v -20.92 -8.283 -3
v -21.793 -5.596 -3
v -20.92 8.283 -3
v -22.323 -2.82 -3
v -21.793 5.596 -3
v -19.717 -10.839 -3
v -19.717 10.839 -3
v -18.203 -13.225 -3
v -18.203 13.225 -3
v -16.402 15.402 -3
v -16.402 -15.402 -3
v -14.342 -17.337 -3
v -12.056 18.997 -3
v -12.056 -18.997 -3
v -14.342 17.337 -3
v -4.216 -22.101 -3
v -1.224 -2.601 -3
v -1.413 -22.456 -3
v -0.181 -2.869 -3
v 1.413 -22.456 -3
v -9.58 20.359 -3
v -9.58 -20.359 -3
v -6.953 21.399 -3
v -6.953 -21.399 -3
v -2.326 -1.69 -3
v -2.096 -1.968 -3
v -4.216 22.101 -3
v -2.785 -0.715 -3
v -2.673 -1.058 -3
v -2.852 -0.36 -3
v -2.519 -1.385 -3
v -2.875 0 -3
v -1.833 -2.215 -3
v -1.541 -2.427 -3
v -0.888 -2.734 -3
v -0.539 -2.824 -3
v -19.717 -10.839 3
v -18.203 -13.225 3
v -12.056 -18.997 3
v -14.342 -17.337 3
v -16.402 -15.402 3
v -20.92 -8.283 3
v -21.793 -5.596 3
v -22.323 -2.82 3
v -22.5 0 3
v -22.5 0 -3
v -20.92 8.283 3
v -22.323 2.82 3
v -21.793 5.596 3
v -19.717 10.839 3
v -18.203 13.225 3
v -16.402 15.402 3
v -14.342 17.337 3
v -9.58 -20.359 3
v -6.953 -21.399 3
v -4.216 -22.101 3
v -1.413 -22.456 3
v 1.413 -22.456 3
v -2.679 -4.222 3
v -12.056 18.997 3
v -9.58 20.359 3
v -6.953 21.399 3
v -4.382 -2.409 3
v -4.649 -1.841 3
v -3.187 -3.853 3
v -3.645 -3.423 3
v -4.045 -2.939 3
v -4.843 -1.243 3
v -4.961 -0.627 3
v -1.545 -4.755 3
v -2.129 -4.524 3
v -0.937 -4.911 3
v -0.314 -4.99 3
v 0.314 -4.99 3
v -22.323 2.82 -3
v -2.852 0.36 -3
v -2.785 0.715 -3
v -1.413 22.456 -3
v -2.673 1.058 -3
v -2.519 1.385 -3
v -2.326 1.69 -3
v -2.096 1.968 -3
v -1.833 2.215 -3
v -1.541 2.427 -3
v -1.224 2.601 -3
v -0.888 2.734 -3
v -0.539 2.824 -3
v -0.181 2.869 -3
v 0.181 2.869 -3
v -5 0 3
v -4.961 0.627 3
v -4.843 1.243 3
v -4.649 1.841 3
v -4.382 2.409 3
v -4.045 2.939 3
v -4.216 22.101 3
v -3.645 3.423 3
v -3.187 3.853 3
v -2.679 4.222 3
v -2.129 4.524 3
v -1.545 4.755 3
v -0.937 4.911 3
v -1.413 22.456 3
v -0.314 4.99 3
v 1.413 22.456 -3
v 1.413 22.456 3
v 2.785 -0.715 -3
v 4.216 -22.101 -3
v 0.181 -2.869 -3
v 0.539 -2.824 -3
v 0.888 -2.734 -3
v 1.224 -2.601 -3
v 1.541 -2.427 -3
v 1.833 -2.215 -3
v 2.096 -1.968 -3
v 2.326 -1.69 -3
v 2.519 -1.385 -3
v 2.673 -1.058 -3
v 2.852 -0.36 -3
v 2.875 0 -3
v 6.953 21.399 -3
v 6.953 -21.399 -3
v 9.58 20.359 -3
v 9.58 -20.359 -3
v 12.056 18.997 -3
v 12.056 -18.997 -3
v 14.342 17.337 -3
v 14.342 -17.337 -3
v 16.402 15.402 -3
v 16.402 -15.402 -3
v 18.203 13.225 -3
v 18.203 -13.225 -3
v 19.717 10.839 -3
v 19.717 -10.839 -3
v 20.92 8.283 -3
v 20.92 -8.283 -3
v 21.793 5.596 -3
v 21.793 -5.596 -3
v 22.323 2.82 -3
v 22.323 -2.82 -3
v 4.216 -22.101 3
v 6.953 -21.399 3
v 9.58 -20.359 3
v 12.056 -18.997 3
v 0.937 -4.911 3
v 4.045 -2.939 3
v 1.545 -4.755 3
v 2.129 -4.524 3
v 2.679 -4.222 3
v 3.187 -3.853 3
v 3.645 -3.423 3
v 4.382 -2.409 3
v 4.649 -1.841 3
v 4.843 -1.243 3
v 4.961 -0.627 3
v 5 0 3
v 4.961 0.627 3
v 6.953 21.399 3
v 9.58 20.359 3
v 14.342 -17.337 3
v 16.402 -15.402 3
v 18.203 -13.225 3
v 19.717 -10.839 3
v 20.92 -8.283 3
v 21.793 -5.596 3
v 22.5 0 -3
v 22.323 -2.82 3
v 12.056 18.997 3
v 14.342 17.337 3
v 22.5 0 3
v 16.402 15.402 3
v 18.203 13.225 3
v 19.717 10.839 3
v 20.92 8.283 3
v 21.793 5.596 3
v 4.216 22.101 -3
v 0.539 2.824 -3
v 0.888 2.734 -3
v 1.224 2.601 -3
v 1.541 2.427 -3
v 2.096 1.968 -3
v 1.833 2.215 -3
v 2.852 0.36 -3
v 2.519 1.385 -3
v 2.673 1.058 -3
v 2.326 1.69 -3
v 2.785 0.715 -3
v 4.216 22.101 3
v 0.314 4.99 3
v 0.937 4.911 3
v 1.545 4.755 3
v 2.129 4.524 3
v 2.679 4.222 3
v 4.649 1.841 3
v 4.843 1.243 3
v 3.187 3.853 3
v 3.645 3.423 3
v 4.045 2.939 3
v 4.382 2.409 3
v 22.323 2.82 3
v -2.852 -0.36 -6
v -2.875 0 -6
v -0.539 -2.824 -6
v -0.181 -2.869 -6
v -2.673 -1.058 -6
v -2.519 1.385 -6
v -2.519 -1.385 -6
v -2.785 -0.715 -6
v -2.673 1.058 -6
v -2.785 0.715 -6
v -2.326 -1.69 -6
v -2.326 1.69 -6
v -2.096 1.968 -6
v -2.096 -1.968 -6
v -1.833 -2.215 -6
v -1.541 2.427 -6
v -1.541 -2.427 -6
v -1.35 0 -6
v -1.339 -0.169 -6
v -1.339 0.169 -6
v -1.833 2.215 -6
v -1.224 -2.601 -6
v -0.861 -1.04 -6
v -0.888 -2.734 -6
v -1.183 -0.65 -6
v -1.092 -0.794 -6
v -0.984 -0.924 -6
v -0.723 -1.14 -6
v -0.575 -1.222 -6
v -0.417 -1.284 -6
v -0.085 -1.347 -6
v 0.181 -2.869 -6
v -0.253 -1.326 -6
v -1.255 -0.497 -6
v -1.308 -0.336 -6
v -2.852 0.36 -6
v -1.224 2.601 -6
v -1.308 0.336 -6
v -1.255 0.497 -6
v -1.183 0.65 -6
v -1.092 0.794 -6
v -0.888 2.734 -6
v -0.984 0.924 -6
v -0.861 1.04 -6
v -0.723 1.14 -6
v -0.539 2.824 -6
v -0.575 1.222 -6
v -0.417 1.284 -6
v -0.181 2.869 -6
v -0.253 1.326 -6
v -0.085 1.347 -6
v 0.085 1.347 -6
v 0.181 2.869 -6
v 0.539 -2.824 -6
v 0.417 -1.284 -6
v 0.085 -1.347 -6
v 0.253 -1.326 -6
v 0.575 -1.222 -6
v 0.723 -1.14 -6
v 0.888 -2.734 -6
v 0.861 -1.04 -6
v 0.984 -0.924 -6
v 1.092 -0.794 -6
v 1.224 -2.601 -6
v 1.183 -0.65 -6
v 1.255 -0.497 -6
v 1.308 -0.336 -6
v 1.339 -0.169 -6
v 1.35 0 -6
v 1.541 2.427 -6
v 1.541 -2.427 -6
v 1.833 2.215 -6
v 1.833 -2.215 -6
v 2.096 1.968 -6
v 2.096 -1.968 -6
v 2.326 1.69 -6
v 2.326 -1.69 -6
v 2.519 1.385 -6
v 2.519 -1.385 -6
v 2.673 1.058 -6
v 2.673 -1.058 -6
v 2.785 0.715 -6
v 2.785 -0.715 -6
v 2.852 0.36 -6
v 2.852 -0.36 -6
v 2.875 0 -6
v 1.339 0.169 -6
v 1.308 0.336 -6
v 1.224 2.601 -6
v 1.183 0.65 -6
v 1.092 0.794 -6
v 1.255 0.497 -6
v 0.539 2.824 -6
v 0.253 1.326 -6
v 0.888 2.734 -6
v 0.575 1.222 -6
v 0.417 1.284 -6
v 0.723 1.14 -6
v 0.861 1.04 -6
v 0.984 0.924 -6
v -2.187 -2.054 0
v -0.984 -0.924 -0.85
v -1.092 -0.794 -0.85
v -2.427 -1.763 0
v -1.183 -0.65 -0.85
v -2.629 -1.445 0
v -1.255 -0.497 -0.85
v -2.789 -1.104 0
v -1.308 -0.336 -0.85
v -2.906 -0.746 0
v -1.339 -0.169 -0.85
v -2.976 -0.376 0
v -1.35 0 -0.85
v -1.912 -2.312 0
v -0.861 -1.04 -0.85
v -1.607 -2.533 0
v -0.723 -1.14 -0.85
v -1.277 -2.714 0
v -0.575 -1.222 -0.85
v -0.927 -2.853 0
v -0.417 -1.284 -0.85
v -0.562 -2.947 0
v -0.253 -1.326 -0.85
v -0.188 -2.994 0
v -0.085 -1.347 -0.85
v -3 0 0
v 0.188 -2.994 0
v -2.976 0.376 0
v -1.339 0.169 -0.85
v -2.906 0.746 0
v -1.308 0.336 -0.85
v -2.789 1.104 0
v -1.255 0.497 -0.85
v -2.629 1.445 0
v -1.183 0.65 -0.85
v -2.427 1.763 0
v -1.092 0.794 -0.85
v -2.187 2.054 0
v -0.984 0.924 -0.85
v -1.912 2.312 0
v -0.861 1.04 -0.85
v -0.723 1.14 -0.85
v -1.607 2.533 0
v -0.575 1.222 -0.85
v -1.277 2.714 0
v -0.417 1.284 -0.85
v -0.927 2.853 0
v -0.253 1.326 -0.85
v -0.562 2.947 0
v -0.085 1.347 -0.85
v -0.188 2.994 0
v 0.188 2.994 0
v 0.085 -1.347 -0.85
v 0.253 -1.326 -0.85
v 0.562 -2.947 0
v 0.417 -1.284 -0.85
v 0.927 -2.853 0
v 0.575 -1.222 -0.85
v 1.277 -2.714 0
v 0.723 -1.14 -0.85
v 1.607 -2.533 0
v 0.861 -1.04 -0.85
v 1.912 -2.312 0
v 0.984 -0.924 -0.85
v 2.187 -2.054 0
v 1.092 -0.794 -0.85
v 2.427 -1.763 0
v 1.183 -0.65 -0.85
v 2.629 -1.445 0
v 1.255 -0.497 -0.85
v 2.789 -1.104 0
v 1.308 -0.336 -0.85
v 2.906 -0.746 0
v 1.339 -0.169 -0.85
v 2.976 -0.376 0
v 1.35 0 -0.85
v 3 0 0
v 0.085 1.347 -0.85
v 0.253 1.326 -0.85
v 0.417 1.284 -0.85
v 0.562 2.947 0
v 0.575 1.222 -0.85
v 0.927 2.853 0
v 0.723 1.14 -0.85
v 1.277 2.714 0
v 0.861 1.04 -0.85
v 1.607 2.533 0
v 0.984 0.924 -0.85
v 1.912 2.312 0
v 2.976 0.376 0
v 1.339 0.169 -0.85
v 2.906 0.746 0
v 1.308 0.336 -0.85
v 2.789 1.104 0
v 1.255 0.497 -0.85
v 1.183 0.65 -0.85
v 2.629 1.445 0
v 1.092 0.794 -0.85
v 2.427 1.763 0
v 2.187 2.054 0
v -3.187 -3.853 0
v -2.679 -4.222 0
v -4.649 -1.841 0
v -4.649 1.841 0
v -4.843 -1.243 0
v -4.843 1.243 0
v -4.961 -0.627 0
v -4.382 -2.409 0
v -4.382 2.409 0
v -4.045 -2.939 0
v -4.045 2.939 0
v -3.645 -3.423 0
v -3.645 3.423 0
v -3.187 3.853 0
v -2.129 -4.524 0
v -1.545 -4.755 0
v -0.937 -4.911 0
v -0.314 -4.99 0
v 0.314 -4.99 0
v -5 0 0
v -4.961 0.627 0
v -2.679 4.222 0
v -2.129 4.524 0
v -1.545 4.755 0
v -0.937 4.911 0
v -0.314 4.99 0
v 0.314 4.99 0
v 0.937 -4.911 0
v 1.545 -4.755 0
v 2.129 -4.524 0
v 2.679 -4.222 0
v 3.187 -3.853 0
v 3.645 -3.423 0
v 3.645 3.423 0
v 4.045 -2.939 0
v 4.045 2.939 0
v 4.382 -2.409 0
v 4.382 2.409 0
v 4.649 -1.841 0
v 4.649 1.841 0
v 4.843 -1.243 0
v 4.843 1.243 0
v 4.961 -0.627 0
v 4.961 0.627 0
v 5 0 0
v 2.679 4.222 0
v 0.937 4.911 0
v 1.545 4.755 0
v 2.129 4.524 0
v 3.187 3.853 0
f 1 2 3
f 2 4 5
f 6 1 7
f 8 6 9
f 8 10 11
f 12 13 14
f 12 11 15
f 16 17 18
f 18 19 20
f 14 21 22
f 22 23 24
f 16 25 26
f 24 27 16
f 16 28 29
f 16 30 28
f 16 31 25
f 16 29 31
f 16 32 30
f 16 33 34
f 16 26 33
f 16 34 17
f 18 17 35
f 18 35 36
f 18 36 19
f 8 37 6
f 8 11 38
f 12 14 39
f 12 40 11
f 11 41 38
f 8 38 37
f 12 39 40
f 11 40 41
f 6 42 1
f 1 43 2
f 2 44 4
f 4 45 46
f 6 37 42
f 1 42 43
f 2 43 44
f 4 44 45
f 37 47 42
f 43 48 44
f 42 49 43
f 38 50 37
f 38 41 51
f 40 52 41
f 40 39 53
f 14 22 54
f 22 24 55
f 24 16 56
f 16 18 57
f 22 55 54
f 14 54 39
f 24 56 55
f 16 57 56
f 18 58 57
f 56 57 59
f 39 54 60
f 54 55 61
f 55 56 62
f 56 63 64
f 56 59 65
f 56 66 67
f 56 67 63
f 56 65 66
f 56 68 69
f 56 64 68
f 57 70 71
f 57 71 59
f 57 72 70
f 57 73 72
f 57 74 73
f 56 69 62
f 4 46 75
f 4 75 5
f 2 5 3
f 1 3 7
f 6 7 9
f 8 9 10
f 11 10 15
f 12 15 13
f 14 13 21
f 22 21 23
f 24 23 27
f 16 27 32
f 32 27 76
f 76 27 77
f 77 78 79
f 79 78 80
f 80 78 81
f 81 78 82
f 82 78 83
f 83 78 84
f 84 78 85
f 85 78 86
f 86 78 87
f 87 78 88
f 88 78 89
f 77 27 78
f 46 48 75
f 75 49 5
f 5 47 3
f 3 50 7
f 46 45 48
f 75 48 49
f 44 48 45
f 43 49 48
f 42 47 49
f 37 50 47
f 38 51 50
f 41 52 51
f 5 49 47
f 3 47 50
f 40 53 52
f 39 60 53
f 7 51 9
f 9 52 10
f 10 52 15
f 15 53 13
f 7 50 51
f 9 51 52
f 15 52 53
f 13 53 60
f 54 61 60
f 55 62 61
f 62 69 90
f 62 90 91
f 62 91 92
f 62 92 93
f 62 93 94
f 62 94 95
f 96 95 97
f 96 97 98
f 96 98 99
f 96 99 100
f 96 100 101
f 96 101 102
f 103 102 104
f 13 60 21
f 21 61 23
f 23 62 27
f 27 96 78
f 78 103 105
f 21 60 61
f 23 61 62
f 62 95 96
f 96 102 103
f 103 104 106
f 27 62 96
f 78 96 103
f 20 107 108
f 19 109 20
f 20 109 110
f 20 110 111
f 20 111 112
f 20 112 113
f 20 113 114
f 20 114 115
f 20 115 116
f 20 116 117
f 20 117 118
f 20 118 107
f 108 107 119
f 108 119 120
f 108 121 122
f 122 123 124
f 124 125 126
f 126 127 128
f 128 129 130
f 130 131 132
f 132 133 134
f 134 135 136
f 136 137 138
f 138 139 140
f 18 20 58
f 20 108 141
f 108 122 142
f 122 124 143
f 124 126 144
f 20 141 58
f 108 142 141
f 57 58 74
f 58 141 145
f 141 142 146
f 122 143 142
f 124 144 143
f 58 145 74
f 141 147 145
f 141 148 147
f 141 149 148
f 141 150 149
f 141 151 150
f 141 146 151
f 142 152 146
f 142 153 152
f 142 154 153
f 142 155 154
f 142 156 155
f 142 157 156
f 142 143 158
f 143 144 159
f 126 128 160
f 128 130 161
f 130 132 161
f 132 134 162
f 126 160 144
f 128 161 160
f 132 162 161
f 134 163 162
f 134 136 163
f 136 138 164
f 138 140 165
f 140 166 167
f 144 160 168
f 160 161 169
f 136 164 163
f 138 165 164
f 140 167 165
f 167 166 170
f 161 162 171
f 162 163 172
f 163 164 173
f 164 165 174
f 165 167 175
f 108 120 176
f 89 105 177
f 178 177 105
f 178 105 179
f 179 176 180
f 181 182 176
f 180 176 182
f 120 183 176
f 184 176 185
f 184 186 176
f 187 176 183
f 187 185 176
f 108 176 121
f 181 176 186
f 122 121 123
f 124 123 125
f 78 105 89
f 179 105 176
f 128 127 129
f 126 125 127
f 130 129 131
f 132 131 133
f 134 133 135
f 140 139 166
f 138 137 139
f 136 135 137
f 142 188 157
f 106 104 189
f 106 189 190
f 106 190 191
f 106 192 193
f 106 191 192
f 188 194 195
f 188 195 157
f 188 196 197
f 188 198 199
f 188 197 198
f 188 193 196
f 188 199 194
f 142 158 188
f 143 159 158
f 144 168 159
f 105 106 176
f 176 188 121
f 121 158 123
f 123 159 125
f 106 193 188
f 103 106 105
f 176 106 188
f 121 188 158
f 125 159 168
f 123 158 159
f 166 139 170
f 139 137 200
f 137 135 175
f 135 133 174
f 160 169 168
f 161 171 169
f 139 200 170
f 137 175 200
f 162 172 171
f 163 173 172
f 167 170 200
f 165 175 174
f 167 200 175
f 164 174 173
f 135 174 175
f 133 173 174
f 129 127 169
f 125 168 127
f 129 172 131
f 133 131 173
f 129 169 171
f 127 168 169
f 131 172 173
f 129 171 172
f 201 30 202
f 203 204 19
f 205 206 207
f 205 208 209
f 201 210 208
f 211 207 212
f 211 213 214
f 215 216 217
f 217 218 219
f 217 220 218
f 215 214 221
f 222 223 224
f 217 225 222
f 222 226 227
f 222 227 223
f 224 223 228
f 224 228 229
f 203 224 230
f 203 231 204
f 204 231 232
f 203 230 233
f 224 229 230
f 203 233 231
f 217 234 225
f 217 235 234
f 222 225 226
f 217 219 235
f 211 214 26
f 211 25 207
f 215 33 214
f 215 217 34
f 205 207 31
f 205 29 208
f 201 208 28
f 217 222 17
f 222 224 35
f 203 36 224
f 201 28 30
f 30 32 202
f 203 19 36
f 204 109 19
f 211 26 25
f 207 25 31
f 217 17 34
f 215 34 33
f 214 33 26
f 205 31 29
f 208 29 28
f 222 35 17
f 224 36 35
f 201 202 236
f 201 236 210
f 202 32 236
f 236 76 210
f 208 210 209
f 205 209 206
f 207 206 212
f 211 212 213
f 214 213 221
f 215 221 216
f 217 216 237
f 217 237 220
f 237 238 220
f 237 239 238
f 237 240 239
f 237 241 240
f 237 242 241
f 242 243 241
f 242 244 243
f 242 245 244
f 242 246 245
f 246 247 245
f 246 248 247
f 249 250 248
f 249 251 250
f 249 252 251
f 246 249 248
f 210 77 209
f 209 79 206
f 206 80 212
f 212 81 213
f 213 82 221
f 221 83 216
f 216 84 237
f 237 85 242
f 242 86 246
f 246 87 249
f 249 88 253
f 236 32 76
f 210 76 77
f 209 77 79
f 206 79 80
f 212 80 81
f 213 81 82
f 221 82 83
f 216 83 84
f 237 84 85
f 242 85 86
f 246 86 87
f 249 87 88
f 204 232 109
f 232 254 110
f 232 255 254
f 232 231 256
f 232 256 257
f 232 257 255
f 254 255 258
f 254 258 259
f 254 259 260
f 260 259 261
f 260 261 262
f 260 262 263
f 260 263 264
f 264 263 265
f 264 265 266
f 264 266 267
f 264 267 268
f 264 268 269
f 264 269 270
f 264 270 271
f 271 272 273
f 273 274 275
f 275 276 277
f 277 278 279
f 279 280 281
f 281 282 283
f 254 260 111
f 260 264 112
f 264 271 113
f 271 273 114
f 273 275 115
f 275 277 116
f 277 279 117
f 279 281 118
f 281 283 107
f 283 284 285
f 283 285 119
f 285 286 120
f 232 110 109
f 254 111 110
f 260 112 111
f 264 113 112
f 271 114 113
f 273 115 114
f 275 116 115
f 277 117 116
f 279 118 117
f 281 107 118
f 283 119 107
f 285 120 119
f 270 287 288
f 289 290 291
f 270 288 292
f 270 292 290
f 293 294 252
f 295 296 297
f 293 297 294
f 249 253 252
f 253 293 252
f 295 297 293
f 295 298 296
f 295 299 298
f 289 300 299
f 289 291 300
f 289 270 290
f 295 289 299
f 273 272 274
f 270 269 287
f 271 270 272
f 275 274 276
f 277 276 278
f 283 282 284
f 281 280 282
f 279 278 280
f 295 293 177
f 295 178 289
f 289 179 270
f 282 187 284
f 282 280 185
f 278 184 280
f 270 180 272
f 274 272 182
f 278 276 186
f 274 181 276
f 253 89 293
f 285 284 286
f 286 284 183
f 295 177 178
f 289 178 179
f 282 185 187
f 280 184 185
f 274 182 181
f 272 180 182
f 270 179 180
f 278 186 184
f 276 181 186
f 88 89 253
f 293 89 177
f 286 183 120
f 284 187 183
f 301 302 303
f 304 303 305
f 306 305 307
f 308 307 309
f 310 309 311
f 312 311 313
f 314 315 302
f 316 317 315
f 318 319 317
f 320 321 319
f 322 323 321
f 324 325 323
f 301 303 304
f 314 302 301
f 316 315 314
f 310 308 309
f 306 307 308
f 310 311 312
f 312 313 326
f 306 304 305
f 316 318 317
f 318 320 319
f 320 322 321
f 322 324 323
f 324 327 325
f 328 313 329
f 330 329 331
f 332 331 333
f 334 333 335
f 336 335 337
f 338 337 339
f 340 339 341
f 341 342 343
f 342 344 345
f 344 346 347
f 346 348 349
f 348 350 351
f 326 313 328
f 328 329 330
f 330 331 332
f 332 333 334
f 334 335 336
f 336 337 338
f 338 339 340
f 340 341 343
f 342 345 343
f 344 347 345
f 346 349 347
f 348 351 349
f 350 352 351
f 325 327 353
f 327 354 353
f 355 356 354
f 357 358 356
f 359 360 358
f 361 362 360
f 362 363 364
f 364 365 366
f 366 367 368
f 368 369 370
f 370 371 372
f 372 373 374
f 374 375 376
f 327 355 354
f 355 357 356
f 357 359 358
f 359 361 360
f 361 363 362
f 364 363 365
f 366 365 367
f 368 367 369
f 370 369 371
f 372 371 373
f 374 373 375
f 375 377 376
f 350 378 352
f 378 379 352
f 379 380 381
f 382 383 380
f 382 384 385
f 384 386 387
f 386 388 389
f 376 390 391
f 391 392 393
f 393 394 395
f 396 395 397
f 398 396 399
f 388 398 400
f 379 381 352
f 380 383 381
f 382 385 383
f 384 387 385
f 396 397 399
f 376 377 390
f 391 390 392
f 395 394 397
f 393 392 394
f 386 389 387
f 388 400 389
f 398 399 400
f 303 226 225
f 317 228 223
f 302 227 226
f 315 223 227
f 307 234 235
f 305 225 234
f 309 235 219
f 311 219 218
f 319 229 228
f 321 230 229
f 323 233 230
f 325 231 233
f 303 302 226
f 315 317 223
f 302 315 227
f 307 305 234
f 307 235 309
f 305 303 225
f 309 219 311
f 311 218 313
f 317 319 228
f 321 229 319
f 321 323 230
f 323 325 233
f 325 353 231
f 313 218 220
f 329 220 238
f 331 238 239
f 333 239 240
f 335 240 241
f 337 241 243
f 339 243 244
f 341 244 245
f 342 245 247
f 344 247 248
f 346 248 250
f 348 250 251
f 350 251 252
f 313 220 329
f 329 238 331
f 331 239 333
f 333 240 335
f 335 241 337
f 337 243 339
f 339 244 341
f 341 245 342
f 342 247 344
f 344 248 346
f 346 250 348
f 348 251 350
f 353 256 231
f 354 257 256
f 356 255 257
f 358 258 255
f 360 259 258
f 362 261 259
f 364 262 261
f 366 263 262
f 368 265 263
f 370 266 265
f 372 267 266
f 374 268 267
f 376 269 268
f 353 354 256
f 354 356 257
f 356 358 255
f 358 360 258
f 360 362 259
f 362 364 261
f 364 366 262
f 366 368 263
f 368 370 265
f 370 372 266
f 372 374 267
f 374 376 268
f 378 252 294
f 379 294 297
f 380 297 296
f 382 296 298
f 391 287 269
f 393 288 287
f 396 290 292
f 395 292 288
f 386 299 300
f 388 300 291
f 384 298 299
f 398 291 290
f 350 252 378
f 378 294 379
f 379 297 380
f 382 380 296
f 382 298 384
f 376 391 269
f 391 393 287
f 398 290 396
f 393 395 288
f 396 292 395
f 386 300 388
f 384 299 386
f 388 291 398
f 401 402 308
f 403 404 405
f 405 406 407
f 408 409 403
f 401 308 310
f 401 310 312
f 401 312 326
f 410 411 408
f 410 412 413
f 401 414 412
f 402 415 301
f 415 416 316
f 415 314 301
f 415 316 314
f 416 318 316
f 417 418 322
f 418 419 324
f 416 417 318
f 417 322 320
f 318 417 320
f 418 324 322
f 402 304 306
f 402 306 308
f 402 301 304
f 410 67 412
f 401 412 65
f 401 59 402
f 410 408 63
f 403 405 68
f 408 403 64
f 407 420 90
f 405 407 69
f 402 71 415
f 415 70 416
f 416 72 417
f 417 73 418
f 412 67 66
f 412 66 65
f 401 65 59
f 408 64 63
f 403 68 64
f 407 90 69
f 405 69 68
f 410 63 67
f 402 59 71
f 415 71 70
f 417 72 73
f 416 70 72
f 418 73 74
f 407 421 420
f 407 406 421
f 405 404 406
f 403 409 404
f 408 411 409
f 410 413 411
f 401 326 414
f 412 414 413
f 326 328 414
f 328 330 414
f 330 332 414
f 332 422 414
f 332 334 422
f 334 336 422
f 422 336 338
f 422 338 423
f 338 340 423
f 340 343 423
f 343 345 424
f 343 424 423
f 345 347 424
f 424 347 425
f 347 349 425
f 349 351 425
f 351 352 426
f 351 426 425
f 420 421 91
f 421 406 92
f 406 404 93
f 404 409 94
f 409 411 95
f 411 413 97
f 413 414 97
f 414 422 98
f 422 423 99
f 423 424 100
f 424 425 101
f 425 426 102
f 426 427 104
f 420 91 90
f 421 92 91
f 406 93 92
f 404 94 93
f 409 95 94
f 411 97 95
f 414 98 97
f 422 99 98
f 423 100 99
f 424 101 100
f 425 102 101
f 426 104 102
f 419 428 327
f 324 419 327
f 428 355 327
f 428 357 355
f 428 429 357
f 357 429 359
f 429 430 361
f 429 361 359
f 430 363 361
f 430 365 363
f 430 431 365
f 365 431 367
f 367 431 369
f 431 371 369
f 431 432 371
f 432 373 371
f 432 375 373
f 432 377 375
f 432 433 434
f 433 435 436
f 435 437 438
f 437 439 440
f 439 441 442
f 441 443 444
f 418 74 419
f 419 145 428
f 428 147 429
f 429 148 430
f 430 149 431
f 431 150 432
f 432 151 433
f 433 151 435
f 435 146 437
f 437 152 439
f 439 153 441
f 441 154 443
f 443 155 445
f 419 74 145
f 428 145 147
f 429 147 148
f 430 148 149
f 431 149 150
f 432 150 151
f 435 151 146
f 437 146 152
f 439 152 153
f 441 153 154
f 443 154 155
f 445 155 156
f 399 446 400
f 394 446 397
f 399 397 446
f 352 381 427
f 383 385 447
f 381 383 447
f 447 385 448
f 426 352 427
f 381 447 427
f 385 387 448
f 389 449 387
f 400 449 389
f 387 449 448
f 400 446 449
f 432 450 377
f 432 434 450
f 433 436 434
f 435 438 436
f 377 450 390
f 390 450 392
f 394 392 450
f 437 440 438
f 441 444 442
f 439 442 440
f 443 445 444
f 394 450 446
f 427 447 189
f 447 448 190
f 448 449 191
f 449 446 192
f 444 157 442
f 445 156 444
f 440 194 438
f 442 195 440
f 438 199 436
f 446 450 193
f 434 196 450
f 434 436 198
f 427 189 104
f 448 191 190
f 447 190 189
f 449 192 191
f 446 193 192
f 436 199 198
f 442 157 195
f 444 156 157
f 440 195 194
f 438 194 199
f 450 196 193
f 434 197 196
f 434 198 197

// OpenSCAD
$fn = 50;


difference() {
	union() {
		translate(v = [0, 0, -3.0000000000]) {
			cylinder(h = 6, r = 22.5000000000);
		}
		#translate(v = [0, 0, -6.0000000000]) {
			cylinder(h = 6, r = 2.8750000000);
		}
	}
	union() {
		translate(v = [0, 0, 0]) {
			rotate(a = [0, 0, 0]) {
				difference() {
					union() {
						translate(v = [0, 0, -6.0000000000]) {
							cylinder(h = 6, r = 1.0000000000);
						}
						translate(v = [0, 0, -0.8500000000]) {
							cylinder(h = 0.8500000000, r1 = 1.3500000000, r2 = 3.0000000000);
						}
						translate(v = [0, 0, -6.0000000000]) {
							cylinder(h = 6, r = 1.3500000000);
						}
						translate(v = [0, 0, -6.0000000000]) {
							cylinder(h = 6, r = 1.0000000000);
						}
					}
					union();
				}
			}
		}
		#cylinder(h = 3, r = 5.0000000000);
	}
}
